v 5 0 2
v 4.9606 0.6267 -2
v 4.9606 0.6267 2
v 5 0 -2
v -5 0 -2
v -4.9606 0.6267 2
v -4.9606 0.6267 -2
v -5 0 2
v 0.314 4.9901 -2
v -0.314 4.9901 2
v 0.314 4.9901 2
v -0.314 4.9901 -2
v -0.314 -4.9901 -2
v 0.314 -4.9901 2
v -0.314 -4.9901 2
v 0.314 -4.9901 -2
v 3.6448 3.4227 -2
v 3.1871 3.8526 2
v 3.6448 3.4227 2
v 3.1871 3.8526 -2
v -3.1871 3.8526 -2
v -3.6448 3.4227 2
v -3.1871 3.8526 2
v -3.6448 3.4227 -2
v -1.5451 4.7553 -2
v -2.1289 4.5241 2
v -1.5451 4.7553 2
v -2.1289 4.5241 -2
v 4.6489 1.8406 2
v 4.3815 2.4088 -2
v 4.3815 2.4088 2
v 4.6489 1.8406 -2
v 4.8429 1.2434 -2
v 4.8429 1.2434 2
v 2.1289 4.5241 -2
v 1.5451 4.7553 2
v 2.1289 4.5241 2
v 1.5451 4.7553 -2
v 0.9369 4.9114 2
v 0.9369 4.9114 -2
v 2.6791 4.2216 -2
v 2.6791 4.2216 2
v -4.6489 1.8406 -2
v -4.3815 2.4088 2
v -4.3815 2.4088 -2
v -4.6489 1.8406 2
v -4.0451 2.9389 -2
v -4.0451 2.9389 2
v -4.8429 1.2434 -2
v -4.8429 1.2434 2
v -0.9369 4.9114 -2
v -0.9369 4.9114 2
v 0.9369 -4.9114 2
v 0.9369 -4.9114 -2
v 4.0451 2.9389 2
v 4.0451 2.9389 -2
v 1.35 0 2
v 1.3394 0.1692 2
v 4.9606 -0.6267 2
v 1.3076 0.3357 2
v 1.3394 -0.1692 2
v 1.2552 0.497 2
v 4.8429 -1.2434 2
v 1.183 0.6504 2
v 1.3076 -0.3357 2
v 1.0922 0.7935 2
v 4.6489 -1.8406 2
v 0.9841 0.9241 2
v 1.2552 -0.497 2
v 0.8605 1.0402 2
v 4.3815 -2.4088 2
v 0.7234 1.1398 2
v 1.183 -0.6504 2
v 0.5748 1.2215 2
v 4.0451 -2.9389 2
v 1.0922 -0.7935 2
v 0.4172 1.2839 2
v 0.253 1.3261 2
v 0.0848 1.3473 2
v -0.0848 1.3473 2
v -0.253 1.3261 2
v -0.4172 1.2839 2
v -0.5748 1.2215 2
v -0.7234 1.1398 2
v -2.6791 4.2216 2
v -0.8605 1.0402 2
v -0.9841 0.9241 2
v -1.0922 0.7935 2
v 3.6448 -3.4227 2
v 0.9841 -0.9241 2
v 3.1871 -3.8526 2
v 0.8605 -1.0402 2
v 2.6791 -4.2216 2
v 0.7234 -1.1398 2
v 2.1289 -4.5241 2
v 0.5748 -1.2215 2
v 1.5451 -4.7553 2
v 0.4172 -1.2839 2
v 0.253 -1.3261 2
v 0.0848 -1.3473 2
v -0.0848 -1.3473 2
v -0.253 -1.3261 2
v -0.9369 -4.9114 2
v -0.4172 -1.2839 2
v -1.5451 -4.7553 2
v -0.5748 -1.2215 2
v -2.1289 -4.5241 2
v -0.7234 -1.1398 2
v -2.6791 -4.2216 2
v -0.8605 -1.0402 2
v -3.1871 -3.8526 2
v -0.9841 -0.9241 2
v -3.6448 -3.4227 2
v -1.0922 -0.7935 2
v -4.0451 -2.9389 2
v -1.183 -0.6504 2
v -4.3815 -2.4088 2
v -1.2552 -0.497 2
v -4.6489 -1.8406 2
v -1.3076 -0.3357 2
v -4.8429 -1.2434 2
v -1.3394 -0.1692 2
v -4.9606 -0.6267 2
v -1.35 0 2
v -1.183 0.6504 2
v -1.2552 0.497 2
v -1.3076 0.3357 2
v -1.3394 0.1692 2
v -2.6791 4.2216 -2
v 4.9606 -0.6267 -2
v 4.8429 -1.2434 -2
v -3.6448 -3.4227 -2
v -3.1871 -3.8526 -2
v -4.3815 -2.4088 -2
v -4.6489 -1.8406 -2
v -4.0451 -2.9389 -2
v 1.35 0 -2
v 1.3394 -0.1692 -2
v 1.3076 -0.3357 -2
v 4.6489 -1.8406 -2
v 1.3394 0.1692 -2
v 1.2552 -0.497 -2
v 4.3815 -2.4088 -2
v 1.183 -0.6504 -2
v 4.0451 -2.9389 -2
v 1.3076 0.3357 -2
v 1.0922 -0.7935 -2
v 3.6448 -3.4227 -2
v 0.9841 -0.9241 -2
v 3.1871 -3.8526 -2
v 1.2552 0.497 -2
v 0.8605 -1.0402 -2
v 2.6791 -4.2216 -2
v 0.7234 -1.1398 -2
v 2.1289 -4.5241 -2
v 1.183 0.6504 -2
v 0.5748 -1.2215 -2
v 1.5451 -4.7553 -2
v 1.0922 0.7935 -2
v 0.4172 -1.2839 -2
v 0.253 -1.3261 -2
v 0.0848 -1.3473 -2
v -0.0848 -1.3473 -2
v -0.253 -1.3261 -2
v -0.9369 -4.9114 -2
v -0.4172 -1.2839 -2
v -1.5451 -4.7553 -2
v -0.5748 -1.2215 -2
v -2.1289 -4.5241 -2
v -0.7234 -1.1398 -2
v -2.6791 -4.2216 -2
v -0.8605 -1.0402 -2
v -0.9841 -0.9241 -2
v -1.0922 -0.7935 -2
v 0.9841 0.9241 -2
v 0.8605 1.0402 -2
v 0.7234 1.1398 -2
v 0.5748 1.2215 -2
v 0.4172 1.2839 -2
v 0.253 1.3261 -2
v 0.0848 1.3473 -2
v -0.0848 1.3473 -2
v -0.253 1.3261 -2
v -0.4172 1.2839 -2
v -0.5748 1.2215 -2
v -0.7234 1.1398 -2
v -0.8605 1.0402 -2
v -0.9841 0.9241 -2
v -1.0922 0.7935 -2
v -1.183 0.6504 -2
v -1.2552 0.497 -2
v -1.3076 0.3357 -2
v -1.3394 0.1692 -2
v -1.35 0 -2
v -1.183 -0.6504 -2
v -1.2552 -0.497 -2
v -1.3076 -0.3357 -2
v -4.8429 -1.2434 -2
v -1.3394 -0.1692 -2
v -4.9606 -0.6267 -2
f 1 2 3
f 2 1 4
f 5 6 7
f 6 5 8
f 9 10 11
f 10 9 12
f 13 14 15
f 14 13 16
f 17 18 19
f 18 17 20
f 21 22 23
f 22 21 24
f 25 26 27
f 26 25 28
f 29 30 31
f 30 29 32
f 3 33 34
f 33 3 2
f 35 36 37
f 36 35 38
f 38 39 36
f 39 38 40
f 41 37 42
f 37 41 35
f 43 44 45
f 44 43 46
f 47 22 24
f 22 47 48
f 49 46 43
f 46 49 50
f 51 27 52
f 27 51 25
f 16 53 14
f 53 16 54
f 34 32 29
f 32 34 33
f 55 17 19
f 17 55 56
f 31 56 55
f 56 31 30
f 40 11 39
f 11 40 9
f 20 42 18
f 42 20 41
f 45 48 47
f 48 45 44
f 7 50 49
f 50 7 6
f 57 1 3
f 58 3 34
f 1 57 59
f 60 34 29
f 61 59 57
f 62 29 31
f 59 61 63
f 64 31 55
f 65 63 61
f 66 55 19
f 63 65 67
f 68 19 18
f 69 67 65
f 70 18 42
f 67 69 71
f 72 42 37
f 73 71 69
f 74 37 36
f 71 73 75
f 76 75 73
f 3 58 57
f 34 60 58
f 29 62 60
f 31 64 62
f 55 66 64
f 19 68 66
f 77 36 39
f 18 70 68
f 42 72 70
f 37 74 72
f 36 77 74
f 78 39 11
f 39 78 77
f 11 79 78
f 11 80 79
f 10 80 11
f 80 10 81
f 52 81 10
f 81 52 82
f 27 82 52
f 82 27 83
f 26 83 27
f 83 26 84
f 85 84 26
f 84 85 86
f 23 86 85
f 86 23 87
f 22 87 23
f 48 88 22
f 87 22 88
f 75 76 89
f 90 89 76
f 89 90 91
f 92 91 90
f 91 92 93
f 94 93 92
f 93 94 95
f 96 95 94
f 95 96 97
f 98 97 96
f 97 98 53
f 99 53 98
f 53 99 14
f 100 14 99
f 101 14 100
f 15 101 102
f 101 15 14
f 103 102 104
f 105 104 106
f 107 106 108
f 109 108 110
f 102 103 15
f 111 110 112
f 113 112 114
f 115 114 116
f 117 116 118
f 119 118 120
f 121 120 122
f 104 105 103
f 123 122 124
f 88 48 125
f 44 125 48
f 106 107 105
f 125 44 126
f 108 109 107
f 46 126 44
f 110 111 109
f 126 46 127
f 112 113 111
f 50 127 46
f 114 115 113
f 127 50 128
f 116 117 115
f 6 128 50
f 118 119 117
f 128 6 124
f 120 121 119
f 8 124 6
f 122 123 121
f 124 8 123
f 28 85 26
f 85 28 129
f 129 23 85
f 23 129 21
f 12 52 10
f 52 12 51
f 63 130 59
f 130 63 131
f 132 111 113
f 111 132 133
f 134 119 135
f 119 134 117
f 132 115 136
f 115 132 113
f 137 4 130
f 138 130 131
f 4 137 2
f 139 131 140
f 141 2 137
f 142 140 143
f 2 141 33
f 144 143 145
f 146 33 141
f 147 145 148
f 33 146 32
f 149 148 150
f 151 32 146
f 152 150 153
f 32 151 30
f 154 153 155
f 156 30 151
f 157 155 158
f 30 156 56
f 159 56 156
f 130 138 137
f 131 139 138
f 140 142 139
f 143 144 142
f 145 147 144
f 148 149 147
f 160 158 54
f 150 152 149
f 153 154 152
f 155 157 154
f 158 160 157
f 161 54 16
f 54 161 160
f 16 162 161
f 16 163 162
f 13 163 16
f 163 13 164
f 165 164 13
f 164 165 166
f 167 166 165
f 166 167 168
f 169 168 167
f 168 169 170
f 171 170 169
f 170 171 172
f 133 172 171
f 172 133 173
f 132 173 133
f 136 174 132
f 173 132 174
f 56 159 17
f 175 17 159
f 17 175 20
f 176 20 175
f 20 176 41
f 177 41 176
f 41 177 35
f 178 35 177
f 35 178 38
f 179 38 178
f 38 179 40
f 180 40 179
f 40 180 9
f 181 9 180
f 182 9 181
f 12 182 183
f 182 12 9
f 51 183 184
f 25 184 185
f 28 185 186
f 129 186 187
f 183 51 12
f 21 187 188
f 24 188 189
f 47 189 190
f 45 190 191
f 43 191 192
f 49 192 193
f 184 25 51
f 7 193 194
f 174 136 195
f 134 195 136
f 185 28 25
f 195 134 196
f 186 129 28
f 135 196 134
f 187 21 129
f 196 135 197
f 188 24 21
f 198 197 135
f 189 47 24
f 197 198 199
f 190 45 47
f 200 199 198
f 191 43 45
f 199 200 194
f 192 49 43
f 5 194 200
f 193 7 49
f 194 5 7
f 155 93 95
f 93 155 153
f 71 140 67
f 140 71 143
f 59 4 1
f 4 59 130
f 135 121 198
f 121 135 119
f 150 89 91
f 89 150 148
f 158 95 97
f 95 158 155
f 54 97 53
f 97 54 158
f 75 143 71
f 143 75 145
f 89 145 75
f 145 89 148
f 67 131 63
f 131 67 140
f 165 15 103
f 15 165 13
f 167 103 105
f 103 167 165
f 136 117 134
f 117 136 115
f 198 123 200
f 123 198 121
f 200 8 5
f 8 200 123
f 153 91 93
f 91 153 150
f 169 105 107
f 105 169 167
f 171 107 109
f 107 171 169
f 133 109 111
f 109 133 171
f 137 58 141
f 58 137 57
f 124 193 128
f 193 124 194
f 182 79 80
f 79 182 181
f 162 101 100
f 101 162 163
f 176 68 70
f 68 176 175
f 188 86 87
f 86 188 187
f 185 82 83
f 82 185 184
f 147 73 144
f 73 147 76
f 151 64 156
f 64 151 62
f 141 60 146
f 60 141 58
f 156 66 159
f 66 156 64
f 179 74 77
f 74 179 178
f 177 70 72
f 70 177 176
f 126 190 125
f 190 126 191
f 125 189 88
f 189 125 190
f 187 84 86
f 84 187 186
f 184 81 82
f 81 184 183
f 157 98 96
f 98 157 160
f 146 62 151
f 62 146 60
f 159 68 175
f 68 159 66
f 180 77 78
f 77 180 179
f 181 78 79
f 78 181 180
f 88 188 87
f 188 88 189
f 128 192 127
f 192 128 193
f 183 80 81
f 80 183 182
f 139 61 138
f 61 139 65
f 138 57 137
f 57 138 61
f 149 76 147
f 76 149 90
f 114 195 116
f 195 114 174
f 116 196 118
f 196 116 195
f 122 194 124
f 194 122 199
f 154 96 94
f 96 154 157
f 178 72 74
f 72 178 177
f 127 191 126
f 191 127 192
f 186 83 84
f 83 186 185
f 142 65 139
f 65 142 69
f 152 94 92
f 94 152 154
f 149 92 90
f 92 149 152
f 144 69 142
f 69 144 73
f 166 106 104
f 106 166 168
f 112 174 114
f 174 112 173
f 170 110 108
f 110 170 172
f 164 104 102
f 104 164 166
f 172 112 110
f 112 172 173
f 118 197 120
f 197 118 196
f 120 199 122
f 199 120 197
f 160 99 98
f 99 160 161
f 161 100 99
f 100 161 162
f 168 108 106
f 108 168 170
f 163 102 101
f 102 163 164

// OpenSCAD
$fn = 50;


difference() {
	union() {
		translate(v = [0, 0, -2.0000000000]) {
			cylinder(h = 4, r = 5.0000000000);
		}
	}
	union() {
		translate(v = [0, 0, -100.0000000000]) {
			cylinder(h = 200, r = 1.3500000000);
		}
	}
}
